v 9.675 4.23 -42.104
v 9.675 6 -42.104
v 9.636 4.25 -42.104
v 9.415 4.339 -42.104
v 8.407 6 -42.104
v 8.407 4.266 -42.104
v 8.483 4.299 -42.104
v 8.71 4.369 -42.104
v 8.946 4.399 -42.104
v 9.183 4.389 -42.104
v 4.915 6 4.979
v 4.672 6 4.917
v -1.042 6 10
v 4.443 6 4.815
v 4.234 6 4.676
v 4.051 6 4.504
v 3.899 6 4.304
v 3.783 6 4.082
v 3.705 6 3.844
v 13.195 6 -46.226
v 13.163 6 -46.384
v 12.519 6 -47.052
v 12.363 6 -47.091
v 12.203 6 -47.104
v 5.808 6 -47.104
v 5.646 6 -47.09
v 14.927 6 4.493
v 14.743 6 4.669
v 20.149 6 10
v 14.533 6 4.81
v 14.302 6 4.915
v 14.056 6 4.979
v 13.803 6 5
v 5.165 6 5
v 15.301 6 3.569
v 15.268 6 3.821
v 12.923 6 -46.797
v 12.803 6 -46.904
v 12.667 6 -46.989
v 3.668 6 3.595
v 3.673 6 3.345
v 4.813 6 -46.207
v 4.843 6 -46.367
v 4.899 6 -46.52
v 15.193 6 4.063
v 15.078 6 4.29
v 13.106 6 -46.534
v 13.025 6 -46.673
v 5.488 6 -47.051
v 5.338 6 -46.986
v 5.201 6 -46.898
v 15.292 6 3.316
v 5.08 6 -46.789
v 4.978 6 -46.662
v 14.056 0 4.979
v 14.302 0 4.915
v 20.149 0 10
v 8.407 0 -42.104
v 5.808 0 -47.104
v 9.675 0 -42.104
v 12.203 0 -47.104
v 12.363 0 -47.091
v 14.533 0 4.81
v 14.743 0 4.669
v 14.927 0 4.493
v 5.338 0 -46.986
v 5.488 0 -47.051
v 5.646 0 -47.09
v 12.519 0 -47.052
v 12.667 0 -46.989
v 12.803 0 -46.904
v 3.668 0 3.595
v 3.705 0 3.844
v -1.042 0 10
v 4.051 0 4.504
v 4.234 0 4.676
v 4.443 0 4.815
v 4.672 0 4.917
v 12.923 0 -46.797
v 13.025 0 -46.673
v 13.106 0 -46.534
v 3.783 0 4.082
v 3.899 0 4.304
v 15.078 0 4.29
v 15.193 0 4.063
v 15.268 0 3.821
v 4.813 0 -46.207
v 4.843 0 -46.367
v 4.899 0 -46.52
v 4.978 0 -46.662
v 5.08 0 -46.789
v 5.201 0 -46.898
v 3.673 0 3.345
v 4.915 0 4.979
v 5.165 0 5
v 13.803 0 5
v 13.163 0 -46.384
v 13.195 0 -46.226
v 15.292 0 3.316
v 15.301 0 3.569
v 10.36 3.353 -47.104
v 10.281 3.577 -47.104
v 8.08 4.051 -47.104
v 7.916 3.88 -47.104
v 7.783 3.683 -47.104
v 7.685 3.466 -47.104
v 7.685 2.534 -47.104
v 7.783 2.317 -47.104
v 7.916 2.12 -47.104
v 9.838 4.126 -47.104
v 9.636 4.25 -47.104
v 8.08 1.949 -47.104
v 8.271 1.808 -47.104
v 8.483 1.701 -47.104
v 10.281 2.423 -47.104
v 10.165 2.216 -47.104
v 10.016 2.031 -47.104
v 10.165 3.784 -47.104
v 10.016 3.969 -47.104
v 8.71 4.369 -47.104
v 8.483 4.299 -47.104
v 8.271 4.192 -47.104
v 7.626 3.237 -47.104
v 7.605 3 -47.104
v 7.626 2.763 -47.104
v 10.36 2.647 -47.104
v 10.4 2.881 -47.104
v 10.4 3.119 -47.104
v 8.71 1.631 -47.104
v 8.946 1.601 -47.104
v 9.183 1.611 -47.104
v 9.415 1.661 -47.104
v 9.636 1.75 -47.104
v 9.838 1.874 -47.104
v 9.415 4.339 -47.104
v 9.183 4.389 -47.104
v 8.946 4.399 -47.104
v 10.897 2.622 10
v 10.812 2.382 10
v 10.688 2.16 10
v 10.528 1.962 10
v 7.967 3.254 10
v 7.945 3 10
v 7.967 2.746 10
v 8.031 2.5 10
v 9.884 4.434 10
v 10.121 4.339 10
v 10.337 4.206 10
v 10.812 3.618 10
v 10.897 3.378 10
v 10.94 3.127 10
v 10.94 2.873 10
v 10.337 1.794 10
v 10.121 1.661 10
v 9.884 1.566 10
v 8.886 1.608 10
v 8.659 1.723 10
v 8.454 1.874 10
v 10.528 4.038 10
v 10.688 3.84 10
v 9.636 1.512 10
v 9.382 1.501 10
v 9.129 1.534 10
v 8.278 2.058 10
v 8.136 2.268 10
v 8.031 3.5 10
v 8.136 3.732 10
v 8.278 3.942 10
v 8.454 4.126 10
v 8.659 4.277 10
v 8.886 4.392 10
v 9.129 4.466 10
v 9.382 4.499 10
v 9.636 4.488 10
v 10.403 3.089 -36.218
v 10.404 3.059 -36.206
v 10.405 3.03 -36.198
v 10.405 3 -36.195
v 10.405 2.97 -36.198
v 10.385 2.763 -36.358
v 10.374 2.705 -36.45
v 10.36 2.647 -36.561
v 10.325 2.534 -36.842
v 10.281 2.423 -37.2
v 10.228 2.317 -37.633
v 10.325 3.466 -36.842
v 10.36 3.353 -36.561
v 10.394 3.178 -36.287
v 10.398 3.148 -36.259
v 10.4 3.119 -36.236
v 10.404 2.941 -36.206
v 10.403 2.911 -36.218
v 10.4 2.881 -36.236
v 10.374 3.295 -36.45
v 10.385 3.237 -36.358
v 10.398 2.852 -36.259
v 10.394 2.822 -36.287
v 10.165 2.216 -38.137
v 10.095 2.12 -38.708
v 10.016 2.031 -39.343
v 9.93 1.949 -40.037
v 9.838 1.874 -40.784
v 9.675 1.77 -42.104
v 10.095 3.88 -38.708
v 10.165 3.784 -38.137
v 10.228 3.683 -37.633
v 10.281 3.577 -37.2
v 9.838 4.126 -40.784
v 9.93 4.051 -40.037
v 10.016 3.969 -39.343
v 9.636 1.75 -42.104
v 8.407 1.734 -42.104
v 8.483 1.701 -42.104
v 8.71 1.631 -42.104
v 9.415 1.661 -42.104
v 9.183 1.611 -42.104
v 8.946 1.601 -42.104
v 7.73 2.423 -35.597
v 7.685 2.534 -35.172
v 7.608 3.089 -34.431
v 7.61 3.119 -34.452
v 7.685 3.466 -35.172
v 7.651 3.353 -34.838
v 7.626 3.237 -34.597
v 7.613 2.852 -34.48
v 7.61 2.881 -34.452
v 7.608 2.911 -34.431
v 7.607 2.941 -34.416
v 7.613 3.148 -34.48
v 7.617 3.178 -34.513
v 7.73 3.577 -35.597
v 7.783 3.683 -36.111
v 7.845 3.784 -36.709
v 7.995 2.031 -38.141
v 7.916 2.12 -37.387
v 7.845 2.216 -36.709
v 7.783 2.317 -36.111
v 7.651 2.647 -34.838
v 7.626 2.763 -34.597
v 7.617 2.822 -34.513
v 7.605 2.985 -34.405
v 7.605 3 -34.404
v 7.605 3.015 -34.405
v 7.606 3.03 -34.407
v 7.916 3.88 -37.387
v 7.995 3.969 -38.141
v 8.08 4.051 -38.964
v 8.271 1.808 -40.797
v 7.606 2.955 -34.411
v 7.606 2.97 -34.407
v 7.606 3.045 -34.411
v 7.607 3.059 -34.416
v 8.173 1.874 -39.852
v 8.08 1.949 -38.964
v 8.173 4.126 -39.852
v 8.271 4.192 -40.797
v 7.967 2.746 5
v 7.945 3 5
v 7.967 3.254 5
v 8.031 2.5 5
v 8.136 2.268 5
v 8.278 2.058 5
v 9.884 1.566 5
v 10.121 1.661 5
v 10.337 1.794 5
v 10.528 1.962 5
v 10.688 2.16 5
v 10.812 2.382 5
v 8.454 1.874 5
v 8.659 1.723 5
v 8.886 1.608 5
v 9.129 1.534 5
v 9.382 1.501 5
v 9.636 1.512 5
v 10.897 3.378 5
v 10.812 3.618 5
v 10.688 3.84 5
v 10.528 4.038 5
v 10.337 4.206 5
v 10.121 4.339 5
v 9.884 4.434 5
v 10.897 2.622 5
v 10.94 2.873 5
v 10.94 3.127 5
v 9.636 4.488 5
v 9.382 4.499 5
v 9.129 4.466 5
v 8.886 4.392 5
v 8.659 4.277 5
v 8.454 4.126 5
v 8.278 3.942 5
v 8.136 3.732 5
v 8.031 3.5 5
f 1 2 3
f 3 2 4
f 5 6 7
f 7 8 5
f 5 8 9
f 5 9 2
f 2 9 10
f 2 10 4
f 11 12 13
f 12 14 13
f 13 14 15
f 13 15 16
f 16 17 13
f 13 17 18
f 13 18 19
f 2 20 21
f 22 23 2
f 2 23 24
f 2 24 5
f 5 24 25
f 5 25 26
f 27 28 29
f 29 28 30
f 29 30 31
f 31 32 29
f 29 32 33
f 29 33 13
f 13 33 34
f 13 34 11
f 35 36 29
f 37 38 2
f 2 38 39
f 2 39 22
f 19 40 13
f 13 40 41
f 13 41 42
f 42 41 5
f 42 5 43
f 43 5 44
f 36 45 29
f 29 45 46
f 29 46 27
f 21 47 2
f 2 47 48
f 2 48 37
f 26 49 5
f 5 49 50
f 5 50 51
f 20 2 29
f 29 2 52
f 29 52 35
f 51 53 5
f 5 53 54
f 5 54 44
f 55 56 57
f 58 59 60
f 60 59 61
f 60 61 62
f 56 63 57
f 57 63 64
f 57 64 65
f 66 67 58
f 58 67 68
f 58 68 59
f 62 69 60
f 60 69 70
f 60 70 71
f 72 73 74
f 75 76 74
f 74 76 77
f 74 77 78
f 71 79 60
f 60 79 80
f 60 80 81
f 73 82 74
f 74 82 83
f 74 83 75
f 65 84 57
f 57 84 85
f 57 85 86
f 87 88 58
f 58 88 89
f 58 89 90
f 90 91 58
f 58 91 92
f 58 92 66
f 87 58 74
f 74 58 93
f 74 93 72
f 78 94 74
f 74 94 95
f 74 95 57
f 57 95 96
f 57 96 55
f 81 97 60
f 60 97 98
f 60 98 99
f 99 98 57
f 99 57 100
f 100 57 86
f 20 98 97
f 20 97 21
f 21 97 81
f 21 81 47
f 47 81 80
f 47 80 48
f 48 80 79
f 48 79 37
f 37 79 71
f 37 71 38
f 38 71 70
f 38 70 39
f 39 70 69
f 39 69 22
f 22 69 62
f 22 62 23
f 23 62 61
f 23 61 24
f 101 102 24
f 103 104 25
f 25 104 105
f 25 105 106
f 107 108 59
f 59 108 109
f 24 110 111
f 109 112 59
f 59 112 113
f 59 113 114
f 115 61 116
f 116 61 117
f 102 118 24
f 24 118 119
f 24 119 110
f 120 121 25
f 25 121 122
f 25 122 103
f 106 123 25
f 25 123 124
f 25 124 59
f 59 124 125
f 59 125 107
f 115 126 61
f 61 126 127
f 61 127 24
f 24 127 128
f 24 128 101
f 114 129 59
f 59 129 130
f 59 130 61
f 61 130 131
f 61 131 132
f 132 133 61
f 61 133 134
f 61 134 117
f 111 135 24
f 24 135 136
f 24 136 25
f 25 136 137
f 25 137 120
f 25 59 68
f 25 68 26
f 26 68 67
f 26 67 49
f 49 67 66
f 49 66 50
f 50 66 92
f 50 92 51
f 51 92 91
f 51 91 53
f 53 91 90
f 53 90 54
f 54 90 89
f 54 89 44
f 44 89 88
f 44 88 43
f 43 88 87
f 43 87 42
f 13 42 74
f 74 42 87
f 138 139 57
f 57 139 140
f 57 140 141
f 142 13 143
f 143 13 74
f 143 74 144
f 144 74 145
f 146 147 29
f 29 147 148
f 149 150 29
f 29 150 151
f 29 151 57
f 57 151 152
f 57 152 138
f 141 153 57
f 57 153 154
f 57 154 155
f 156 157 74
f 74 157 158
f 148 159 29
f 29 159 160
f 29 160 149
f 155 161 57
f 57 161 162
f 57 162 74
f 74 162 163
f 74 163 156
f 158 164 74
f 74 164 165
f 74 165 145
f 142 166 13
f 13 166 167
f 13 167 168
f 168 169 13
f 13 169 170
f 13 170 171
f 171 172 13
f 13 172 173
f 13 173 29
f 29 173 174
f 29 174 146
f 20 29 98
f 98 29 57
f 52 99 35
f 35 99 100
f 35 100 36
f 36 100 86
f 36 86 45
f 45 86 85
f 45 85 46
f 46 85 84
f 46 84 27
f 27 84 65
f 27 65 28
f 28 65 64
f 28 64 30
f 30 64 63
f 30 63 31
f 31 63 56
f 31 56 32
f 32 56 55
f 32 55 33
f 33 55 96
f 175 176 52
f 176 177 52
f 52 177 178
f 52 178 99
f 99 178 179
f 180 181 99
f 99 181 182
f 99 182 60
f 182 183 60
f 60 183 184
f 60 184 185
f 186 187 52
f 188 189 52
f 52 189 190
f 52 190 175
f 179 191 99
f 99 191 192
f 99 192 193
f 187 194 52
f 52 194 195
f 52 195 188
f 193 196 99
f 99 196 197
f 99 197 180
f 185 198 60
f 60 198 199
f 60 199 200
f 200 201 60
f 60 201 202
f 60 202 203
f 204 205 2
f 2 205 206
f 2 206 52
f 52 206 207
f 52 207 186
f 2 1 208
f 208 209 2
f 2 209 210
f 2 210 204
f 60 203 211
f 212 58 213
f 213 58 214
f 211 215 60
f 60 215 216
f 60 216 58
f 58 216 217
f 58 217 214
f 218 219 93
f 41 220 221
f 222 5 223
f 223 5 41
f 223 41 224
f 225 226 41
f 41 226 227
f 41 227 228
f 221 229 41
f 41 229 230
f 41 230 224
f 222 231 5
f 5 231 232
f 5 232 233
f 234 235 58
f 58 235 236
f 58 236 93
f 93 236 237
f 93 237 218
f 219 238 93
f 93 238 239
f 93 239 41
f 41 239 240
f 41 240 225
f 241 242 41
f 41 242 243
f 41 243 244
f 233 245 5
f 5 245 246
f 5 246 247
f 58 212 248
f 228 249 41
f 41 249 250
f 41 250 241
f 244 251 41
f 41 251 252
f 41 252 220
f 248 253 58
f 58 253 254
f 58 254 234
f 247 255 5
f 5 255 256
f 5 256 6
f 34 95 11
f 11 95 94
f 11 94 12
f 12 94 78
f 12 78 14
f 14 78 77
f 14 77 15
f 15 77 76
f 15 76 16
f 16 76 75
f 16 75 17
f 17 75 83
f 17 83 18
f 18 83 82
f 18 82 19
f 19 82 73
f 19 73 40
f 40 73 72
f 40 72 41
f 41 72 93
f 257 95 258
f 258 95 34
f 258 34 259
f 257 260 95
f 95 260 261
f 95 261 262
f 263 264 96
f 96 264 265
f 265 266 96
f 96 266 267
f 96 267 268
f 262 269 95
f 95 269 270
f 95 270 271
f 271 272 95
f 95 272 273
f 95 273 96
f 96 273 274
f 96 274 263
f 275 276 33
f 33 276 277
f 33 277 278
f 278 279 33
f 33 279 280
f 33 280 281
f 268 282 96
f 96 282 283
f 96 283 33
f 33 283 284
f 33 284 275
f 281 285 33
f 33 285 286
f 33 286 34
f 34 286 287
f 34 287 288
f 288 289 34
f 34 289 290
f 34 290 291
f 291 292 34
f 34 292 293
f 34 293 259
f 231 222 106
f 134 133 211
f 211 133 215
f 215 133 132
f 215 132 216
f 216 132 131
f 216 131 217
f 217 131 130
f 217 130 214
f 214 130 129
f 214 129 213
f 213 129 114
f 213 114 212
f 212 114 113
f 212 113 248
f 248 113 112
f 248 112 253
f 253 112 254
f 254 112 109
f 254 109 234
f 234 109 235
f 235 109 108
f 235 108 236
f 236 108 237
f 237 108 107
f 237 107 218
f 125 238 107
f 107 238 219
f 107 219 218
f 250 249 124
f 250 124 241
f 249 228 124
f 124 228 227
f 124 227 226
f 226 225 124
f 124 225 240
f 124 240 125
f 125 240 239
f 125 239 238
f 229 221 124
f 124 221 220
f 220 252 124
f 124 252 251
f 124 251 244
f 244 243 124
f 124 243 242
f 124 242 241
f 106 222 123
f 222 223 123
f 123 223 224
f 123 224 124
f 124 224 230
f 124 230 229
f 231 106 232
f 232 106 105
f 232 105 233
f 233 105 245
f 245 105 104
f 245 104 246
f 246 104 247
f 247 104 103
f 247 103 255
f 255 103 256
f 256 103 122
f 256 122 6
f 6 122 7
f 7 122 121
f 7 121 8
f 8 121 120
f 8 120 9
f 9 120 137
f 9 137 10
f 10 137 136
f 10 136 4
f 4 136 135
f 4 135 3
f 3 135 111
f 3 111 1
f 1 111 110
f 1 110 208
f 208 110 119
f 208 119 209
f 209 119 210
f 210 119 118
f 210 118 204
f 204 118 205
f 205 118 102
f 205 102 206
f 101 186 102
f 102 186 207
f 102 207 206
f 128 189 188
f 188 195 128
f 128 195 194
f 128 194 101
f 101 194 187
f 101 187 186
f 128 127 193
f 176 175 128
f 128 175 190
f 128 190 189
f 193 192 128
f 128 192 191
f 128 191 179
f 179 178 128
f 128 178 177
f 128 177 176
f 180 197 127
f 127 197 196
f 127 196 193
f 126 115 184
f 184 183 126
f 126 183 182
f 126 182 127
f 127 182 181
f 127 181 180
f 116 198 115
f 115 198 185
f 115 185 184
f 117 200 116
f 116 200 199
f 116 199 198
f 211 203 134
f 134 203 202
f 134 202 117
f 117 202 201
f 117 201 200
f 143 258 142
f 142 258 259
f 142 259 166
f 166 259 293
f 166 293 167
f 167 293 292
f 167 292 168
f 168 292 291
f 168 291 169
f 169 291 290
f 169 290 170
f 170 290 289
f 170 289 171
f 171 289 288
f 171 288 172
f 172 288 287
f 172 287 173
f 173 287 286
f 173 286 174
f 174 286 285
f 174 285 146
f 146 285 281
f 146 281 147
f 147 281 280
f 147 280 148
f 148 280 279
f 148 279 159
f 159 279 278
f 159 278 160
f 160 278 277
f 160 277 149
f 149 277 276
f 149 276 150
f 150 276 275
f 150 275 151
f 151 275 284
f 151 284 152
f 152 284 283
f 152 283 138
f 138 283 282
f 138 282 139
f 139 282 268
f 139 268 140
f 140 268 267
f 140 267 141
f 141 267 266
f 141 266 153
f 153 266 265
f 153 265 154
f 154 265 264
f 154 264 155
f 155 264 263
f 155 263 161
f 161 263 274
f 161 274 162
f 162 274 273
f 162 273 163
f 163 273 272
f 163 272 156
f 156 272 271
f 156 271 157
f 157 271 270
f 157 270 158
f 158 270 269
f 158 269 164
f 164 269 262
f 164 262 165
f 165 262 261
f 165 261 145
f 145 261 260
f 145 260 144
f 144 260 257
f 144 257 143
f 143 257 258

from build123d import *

# Parameters (mm, degrees)
BOSS_EXTRUDE1_DEPTH = 6
SKETCH3_R           = 1.4
CUT_EXTRUDE1_DEPTH  = 20
SKETCH4_R           = 1.5
CUT_EXTRUDE2_DEPTH  = 200


with BuildPart() as part:
    # Sketch1 → Boss-Extrude1 (new body)
    with BuildSketch(Plane(origin=(0, 0, 0), x_dir=(1, 0, 0), z_dir=(0, 1, 0))):
        with BuildLine():
            Line((5.807869676, 47.103606084), (12.202893506, 47.103606084))
            ThreePointArc((12.202893506, 47.103606084), (12.865186965, 46.85285062), (13.195333016, 46.226340832))
            Line((13.195333016, 46.226340832), (20.148830597, -10))
            Line((20.148830597, -10), (-1.041666667, -10))
            Line((-1.041666667, -10), (4.813251268, 46.207212169))
            ThreePointArc((4.813251268, 46.207212169), (5.13839454, 46.846440549), (5.807869676, 47.103606084))
        make_face()
        with BuildLine():
            Line((9.674718252, 42.103606084), (15.291737007, -3.315897879))
            ThreePointArc((15.291737007, -3.315897879), (14.926944544, -4.493440189), (13.803077741, -5))
            Line((13.803077741, -5), (5.165175568, -5))
            ThreePointArc((5.165175568, -5), (4.050923871, -4.504212704), (3.673247955, -3.344590874))
            Line((3.673247955, -3.344590874), (8.407435138, 42.103606084))
            Line((8.407435138, 42.103606084), (9.674718252, 42.103606084))
        make_face(mode=Mode.SUBTRACT)
    extrude(amount=BOSS_EXTRUDE1_DEPTH)

    # Sketch3 → Cut-Extrude1 (cut)
    with BuildSketch(Plane(origin=(0, 0, -47.103606084), x_dir=(-1, 0, 0), z_dir=(0, 0, -1))):
        with Locations((-9.005381591, 3)):
            Circle(SKETCH3_R)
    extrude(amount=-CUT_EXTRUDE1_DEPTH, mode=Mode.SUBTRACT)

    # Sketch4 → Cut-Extrude2 (cut)
    with BuildSketch(Plane.XY):
        with Locations(Location((9.445211312, 3, 0), (0, 0, 180))):
            Circle(SKETCH4_R)
    extrude(amount=CUT_EXTRUDE2_DEPTH, mode=Mode.SUBTRACT)


solid = part.part
